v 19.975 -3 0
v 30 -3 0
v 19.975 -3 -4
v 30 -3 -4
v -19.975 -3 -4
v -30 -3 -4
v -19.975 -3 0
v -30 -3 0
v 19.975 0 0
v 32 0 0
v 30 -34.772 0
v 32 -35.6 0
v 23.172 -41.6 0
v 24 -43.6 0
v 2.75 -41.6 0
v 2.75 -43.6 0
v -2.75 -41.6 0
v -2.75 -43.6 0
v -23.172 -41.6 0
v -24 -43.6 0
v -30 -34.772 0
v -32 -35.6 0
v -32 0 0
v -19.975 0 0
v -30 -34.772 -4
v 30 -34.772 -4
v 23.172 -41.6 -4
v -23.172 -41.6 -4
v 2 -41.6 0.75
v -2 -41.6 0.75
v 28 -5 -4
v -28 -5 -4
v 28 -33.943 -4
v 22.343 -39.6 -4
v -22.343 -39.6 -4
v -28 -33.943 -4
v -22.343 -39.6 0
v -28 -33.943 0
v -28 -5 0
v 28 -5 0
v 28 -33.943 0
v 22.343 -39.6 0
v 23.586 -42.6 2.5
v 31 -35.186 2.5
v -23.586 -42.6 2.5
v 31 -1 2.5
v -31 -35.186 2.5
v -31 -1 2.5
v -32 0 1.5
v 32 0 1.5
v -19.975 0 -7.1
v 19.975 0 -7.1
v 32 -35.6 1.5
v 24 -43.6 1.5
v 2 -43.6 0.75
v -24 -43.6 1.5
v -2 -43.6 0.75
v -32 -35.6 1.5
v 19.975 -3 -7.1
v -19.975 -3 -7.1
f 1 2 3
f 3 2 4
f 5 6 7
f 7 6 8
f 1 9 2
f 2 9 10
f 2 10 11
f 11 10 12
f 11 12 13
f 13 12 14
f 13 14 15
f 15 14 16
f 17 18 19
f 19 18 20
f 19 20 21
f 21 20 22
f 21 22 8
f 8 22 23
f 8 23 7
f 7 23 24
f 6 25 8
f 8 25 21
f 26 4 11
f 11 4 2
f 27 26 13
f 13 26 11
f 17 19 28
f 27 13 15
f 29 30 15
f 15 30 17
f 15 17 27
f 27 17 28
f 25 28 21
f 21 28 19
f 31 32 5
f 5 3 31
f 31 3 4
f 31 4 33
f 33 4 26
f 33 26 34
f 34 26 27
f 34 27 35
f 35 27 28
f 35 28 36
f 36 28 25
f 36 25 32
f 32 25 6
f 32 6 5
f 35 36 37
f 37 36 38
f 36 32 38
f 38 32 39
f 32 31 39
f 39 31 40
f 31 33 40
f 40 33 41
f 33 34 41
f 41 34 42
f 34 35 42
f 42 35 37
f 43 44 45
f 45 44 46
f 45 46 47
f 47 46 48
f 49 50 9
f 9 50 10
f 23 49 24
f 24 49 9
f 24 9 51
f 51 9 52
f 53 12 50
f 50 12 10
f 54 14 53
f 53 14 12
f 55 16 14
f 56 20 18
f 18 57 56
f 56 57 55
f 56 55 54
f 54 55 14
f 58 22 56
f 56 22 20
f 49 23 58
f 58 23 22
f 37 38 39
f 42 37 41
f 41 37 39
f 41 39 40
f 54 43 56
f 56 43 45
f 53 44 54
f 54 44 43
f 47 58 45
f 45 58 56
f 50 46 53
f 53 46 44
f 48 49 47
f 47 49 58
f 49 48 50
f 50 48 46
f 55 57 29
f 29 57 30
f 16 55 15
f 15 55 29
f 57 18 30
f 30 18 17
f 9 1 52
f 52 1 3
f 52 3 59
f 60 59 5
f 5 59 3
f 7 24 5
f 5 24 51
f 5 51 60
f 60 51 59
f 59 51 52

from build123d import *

# Parameters (mm, degrees)
BOSS_EXTRUDE1_DEPTH = 4
BOSS_EXTRUDE2_DEPTH = 2.5
CHAMFER1_SIZE       = 1
SKETCH4_W           = 6
SKETCH4_H           = 1.5
CUT_EXTRUDE1_DEPTH  = 2.0001
CHAMFER2_SIZE       = 1
SKETCH5_W           = 39.95
SKETCH5_H           = 3.0001
BOSS_EXTRUDE3_DEPTH = 7.1


with BuildPart() as part:
    # Sketch2 → Boss-Extrude1 (new body)
    with BuildSketch(Plane.XY):
        Polygon((-29.9999, -3.0001), (29.9999, -3.0001), (29.9999, -34.771531454), (23.171531454, -41.5999), (-23.171531454, -41.5999), (-29.9999, -34.771531454), align=None)
        Polygon((-28, -33.943145751), (-28, -5), (28, -5), (28, -33.943145751), (22.343145751, -39.6), (-22.343145751, -39.6), align=None, mode=Mode.SUBTRACT)
    extrude(amount=-BOSS_EXTRUDE1_DEPTH)

    # Sketch3 → Boss-Extrude2 (add)
    with BuildSketch(Plane.XY):
        Polygon((-32, 0), (32, 0), (32, -35.6), (24, -43.6), (-24, -43.6), (-32, -35.6), align=None)
    extrude(amount=BOSS_EXTRUDE2_DEPTH)

    # Chamfer1
    chamfer1_edges = [part.edges().sort_by_distance(p)[0] for p in [
        (-32, -17.8, 2.5),
        (-28, -39.6, 2.5),
        (0, -43.6, 2.5),
        (28, -39.6, 2.5),
        (32, -17.8, 2.5),
        (0, 0, 2.5),
    ]]
    chamfer(chamfer1_edges, length=CHAMFER1_SIZE)

    # Sketch4 → Cut-Extrude1 (cut)
    with BuildSketch(Plane.XZ.offset(43.6)):
        Rectangle(SKETCH4_W, SKETCH4_H)
    extrude(amount=-CUT_EXTRUDE1_DEPTH, mode=Mode.SUBTRACT)

    # Chamfer2
    # the kernel refuses this chamfer: 1 mm, written as the material it adds along each edge
    with BuildSketch(Plane(origin=(3, -43.6, 0.75), x_dir=(0.027495876610586487, 0, -0.9996219169112968), z_dir=(0, 1, 0))) as chamfer2_piece_1_section:
        Polygon((CHAMFER2_SIZE * 0.999621916911, CHAMFER2_SIZE * 0.0274958766106), (-CHAMFER2_SIZE * 0.0274958766106, CHAMFER2_SIZE * 0.999621916911), (0, 0), align=None)
    chamfer2_piece_1 = extrude(amount=4.571782988, mode=Mode.PRIVATE)
    chamfer2_piece_1 = split(chamfer2_piece_1, bisect_by=Plane(origin=(2.65, -42.59995, 0), z_dir=(0, 0, 1)), keep=Keep.TOP, mode=Mode.PRIVATE)
    add(chamfer2_piece_1)
    with BuildSketch(Plane(origin=(-3, -43.6, 0.75), x_dir=(-0.027495876610586487, 0, -0.9996219169112968), z_dir=(0, 1, 0))) as chamfer2_piece_2_section:
        Polygon((CHAMFER2_SIZE * 0.999621916911, -CHAMFER2_SIZE * 0.0274958766106), (-CHAMFER2_SIZE * 0.0274958766106, -CHAMFER2_SIZE * 0.999621916911), (0, 0), align=None)
    chamfer2_piece_2 = extrude(amount=4.571782988, mode=Mode.PRIVATE)
    chamfer2_piece_2 = split(chamfer2_piece_2, bisect_by=Plane(origin=(-2.65, -42.59995, 0), z_dir=(0, 0, 1)), keep=Keep.TOP, mode=Mode.PRIVATE)
    add(chamfer2_piece_2)

    # Sketch5 → Boss-Extrude3 (add)
    with BuildSketch(Plane(origin=(0, 0, 0), x_dir=(-1, 0, 0), z_dir=(0, 0, -1))):
        with Locations((0, -1.50005)):
            Rectangle(SKETCH5_W, SKETCH5_H)
    extrude(amount=BOSS_EXTRUDE3_DEPTH)


solid = part.part
